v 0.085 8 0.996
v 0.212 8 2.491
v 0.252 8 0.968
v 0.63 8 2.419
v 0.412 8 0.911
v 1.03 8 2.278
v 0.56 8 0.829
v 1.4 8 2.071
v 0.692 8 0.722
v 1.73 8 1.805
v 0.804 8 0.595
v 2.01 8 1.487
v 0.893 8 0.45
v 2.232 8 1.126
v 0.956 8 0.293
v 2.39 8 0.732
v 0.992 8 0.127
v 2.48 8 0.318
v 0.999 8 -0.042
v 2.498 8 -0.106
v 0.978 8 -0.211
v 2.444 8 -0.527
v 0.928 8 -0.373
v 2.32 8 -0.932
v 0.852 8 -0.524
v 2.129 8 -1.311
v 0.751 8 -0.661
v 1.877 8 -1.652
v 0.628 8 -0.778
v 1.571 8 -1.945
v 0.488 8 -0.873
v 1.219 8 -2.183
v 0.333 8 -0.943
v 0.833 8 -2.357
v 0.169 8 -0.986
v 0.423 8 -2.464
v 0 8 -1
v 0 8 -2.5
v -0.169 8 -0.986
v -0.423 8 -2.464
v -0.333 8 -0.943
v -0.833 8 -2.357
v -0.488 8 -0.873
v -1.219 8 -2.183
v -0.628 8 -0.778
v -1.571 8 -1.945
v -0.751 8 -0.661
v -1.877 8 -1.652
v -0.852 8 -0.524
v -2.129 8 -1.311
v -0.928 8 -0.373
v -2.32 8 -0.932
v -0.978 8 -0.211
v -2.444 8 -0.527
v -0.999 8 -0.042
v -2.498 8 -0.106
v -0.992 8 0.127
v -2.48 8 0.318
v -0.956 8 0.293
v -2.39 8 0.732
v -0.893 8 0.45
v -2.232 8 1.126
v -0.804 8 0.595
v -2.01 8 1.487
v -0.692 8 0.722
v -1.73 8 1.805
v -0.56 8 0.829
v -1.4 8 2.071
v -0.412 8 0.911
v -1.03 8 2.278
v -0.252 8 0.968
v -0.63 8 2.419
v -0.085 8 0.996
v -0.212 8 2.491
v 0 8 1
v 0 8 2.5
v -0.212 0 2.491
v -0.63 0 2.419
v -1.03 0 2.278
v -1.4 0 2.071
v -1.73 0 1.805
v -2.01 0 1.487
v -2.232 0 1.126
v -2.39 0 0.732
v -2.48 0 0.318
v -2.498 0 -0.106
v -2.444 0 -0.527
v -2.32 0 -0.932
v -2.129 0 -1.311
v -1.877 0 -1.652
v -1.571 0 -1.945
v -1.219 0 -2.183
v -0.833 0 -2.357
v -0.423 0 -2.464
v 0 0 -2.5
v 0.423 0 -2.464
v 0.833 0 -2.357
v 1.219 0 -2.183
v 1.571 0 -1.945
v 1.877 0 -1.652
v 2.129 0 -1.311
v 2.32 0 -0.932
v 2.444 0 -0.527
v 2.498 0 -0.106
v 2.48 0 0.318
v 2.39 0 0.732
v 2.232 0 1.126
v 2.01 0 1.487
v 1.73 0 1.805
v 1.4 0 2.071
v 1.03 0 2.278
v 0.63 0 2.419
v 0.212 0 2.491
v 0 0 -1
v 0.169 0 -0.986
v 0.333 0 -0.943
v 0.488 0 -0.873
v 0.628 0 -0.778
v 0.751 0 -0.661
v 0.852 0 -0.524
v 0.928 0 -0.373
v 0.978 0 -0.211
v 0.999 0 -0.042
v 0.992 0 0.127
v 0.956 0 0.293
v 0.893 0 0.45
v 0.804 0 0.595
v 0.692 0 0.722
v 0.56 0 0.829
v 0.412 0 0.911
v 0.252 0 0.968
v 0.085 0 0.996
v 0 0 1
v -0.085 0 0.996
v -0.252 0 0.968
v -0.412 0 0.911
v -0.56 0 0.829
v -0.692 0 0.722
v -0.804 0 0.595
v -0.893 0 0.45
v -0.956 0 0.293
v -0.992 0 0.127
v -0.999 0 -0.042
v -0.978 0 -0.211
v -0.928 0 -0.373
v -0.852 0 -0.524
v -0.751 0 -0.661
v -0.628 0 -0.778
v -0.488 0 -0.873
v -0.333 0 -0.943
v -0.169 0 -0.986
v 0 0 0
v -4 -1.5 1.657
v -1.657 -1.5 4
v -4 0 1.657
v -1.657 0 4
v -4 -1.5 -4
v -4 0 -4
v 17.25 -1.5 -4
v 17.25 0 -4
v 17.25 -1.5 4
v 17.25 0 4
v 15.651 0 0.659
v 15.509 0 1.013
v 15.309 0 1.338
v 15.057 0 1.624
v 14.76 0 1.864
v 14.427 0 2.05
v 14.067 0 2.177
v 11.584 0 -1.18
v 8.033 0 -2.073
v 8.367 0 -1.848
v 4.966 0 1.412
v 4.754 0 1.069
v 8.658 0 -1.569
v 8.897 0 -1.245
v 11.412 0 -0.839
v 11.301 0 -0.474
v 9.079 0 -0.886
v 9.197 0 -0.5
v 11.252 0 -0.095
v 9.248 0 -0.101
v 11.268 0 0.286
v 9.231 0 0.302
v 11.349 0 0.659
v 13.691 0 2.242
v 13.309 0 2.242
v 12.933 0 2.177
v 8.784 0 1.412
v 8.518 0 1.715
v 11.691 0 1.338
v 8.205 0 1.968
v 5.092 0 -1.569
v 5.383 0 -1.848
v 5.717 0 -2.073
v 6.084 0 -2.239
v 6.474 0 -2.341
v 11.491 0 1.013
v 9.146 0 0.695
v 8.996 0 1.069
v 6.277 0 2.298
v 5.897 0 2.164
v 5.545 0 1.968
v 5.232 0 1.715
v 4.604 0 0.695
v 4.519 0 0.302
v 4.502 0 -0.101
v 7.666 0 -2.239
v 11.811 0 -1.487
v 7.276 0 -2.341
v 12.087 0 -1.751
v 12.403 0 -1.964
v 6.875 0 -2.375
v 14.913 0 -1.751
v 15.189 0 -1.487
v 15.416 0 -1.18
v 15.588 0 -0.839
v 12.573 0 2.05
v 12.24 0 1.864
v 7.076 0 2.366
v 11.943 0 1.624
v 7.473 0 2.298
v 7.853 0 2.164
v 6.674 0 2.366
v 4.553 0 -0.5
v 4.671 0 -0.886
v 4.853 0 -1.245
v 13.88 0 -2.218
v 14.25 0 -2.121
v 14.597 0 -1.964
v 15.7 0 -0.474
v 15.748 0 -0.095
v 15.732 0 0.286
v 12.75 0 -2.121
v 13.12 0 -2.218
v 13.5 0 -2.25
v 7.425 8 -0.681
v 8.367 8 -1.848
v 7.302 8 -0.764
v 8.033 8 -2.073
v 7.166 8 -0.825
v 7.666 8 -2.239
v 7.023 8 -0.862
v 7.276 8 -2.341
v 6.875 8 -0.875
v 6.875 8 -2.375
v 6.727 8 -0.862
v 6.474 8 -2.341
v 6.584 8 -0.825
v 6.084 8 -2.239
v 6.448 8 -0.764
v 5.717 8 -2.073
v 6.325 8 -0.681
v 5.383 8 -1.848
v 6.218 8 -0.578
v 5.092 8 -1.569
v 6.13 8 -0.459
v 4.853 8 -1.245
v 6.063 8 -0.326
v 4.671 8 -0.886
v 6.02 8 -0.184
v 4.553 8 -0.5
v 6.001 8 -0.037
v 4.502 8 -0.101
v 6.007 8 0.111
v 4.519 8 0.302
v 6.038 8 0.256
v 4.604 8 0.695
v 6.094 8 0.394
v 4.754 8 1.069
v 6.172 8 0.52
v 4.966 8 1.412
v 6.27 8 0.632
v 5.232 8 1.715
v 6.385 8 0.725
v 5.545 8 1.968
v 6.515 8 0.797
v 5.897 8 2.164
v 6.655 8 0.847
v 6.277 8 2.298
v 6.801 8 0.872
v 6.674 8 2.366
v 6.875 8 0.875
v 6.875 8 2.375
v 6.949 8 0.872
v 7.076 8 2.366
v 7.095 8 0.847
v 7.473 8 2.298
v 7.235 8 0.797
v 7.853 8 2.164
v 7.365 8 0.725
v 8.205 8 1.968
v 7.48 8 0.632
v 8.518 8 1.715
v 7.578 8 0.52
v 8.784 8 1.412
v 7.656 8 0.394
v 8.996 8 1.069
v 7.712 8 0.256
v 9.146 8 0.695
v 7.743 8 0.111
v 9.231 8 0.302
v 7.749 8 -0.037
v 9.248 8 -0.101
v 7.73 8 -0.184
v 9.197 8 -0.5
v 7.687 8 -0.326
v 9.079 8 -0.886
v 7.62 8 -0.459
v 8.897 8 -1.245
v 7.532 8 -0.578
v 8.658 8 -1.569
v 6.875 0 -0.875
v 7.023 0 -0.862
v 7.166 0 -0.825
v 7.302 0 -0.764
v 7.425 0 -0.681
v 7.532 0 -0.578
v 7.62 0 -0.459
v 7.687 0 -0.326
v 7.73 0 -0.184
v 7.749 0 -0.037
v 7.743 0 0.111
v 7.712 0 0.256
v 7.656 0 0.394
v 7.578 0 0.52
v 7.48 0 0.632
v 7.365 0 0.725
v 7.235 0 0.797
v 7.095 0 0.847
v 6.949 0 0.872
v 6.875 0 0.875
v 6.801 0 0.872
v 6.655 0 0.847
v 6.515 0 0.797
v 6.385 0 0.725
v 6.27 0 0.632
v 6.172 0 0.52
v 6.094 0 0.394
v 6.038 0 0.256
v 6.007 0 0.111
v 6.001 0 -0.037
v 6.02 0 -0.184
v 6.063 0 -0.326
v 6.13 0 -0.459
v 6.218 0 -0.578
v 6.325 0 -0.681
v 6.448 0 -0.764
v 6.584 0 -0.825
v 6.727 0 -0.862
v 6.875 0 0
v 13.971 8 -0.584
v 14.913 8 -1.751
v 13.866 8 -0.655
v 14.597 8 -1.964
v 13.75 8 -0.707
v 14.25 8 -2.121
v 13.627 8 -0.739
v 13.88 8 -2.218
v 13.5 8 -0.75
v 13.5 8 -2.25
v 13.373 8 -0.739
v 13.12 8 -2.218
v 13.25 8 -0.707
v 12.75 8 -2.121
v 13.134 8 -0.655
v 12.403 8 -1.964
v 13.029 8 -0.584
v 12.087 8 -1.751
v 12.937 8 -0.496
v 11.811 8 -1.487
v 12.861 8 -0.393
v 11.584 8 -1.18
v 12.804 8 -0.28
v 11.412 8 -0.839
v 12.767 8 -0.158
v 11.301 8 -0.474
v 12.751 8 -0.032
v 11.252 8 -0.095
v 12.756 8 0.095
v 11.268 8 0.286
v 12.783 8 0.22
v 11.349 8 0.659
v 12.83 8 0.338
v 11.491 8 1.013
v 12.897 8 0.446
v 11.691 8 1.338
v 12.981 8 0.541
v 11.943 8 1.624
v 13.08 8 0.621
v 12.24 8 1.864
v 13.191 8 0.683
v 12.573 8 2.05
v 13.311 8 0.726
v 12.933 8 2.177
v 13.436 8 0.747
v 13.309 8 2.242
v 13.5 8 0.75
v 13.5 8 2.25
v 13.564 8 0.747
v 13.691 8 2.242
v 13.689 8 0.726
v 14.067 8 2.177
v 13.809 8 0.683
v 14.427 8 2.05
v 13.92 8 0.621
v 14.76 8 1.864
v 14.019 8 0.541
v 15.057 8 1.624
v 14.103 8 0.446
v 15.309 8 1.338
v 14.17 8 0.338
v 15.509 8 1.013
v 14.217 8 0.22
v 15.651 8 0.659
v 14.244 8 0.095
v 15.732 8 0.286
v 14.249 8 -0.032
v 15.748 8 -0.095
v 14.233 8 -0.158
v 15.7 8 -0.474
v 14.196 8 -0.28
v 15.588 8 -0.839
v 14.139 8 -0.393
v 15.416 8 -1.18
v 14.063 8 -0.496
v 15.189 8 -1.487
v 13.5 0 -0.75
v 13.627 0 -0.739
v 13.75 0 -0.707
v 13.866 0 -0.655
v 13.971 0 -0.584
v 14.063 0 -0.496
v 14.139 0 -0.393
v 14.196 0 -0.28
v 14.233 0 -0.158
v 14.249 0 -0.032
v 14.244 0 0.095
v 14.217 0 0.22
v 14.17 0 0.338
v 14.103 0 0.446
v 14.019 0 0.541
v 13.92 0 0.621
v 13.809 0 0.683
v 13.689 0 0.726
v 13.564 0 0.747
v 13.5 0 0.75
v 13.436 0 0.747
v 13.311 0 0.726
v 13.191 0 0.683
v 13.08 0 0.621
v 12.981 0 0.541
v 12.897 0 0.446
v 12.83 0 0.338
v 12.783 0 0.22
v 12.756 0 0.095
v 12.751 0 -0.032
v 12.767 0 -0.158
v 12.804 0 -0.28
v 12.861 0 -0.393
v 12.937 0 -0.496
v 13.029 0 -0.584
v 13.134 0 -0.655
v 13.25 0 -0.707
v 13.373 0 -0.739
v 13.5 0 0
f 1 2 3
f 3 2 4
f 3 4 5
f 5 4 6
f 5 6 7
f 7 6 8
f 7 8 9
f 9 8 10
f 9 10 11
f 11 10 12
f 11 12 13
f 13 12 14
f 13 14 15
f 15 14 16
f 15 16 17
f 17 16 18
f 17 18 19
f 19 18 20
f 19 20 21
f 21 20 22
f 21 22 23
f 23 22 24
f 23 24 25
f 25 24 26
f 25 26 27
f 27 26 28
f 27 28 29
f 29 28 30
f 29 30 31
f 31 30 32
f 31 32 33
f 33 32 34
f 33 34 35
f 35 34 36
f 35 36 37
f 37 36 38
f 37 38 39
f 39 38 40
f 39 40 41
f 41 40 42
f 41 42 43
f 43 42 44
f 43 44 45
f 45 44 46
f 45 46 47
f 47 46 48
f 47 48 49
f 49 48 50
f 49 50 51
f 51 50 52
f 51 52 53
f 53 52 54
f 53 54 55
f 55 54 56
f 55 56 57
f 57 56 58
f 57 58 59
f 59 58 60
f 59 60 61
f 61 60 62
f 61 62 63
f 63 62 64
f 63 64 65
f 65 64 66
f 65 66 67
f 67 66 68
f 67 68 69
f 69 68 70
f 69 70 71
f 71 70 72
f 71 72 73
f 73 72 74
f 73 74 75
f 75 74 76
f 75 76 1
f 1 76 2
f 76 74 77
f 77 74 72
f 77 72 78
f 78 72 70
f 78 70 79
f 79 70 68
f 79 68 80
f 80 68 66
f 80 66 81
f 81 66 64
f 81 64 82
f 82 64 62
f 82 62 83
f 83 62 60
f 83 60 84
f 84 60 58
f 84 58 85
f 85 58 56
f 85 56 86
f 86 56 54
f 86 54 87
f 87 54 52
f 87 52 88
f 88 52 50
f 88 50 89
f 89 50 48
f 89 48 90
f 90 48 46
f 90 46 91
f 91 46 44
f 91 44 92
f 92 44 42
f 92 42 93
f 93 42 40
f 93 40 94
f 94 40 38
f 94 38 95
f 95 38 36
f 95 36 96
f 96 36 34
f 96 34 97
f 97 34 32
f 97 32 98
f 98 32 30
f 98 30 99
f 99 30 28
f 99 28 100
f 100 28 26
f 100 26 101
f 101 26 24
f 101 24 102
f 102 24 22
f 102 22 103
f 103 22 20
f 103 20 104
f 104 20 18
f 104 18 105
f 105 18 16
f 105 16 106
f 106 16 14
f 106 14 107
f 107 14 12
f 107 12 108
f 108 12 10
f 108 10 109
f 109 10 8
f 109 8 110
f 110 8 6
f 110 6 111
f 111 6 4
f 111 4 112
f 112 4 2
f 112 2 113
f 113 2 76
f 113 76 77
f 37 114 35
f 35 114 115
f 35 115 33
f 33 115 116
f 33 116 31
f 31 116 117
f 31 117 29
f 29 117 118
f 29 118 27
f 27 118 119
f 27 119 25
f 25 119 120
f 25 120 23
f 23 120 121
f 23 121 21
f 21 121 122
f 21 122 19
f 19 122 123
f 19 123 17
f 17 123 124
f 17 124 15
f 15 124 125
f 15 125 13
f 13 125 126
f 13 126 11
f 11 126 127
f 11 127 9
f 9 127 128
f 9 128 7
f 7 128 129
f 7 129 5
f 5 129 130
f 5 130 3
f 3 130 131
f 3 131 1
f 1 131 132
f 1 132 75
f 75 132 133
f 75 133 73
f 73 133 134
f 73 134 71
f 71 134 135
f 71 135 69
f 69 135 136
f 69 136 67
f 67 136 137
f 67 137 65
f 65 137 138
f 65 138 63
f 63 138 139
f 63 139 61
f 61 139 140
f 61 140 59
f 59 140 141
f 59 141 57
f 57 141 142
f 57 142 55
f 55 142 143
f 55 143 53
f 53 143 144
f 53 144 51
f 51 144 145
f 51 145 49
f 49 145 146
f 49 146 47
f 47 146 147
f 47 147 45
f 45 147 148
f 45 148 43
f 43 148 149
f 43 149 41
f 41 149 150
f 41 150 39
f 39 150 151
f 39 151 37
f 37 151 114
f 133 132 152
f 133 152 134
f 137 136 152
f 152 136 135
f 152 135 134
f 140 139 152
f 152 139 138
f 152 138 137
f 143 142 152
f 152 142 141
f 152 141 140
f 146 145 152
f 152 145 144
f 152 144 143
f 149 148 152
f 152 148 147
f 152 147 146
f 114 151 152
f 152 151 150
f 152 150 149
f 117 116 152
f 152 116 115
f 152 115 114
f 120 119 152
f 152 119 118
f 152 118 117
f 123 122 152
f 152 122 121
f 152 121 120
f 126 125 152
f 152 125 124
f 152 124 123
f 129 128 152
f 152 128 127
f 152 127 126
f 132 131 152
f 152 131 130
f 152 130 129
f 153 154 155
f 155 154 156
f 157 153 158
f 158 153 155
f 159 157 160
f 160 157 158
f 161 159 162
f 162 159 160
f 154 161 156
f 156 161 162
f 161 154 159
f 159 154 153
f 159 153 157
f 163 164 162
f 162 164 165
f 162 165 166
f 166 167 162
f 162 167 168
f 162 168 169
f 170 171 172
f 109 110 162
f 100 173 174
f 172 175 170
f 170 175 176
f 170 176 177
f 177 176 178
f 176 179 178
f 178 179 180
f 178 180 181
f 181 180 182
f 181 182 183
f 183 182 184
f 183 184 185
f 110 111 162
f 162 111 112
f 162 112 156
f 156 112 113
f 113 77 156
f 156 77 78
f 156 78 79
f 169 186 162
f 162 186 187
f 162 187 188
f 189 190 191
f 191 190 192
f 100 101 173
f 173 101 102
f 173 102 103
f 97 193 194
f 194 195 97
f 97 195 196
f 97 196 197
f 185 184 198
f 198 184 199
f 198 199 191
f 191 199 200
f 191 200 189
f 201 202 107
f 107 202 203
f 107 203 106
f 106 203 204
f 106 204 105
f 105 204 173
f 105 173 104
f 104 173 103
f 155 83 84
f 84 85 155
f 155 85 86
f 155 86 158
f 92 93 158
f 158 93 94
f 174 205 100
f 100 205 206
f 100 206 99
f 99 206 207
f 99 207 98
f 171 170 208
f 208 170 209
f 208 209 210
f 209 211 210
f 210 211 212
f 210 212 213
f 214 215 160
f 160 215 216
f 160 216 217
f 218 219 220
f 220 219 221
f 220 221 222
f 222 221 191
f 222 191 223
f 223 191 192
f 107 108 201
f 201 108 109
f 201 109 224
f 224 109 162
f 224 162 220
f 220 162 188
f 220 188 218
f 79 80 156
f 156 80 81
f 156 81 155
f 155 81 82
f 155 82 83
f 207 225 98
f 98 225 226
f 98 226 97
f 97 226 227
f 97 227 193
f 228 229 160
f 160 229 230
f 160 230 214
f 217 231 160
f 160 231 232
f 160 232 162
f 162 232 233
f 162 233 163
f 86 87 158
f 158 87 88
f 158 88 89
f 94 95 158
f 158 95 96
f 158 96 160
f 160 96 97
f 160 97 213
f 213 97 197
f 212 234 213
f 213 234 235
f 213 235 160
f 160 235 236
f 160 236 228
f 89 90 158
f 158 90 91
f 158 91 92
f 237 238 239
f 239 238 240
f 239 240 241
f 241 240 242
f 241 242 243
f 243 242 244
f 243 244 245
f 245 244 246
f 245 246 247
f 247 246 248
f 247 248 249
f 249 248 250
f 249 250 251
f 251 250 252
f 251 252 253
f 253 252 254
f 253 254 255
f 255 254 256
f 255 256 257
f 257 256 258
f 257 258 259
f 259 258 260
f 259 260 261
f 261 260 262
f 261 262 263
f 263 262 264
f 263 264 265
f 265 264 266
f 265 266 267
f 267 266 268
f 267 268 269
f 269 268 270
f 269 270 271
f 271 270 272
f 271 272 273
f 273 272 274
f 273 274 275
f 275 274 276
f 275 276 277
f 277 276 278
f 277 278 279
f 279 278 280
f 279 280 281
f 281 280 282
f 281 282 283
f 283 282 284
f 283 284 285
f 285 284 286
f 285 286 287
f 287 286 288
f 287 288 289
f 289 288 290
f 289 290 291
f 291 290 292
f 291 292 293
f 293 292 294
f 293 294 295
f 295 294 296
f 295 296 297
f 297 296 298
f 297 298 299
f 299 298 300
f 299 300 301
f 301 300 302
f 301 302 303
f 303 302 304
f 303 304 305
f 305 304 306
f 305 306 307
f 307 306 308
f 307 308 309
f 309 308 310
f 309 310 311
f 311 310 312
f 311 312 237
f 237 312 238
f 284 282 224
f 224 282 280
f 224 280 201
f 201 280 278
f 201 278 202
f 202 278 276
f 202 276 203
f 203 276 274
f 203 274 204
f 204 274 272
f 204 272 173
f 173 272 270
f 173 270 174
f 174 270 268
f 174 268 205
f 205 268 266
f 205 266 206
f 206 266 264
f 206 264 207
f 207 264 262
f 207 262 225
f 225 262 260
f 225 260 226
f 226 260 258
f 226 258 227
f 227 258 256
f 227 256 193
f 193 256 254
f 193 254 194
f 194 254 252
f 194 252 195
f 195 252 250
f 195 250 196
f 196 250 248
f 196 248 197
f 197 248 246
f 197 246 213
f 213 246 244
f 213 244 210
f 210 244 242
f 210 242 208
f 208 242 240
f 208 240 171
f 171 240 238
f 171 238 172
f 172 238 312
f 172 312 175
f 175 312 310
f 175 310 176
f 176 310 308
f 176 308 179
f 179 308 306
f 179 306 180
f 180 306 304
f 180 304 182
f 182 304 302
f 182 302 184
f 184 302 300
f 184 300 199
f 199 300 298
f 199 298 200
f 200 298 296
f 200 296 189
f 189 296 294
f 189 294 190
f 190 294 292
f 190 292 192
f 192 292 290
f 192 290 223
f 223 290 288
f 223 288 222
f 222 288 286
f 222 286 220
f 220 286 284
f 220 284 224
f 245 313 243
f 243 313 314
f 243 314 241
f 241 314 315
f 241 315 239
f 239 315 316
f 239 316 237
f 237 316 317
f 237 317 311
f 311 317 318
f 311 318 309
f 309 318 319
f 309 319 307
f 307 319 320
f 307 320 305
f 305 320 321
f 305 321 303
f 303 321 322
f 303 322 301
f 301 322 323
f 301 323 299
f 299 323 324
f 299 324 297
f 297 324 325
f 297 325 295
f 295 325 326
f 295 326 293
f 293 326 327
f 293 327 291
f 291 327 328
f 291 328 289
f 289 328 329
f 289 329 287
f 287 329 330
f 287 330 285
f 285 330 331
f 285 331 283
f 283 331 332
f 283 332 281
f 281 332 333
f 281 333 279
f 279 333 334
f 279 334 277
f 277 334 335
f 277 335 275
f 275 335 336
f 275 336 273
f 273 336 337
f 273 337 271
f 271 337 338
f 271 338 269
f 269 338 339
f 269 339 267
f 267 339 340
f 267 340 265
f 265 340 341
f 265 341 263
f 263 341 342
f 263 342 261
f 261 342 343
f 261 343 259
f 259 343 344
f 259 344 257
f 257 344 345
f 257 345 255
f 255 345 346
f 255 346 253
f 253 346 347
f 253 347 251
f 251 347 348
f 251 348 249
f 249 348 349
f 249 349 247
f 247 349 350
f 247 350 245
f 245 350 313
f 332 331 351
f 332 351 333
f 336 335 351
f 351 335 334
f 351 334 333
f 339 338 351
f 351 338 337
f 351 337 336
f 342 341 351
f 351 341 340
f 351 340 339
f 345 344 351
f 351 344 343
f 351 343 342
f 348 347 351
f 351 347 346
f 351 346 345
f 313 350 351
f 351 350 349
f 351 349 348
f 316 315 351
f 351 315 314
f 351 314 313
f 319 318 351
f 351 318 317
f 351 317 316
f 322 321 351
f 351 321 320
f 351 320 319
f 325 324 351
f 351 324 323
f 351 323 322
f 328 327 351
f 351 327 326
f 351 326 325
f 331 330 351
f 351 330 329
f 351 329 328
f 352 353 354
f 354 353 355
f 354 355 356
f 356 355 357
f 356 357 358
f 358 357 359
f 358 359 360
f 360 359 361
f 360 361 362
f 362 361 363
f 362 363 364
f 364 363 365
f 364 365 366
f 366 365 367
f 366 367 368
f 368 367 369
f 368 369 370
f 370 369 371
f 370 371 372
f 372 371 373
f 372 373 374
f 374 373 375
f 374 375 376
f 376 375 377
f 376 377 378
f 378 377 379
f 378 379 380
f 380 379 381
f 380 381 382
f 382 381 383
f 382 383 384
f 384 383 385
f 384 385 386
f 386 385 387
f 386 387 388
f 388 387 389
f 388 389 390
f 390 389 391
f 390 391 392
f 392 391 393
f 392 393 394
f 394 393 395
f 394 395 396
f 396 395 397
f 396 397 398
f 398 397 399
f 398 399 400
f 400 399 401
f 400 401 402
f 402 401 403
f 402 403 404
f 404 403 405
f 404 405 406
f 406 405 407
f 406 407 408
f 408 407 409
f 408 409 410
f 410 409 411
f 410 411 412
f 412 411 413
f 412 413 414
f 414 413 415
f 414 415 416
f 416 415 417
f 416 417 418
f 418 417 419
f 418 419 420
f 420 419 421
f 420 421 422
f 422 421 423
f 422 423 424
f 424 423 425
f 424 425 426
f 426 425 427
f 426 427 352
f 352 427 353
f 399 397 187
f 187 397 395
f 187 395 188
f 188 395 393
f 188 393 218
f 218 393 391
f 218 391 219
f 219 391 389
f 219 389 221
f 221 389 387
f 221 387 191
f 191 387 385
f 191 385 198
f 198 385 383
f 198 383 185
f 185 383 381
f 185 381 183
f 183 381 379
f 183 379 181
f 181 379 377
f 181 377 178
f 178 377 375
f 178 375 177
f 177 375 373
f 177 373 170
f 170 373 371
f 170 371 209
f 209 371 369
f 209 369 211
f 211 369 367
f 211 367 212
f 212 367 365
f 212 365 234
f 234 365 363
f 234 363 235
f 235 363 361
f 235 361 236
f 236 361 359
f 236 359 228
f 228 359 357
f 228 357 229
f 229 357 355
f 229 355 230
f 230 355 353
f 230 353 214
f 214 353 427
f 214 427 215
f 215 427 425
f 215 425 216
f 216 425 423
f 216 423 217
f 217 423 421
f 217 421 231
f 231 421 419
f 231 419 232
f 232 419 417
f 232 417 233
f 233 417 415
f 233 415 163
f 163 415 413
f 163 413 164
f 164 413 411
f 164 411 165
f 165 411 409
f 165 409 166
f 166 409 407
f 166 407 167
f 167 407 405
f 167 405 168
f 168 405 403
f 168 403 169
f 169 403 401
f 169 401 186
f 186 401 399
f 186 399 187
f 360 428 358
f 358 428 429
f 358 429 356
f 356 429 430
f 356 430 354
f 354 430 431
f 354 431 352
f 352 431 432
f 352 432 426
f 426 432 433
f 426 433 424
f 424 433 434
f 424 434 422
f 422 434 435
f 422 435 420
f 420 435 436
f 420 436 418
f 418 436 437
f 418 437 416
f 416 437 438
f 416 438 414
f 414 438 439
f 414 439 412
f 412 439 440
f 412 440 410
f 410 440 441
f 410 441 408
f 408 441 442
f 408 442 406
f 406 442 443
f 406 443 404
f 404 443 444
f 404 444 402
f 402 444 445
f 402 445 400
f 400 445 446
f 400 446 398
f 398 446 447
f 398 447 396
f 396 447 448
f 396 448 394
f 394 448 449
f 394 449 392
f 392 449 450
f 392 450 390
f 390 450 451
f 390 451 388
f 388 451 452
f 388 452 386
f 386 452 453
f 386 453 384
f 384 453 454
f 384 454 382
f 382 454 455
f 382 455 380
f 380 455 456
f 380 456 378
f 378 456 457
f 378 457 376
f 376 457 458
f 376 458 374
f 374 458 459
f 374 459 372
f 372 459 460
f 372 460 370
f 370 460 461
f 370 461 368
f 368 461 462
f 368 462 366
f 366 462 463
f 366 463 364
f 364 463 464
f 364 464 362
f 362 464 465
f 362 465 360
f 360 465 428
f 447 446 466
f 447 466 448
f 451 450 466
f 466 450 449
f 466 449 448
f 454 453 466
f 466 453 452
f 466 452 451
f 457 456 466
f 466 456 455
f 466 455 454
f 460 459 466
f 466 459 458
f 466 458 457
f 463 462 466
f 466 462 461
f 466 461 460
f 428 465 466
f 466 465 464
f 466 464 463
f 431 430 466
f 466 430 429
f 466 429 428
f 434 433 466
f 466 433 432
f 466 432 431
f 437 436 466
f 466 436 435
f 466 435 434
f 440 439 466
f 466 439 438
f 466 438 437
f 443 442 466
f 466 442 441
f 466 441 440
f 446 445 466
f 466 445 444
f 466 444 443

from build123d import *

# Parameters (mm, degrees)
SKETCH1_R             = 2.5
SKETCH1_R_2           = 1
BOSS_EXTRUDE1_DEPTH   = 8
SKETCH1_R_3           = 2.375
SKETCH1_R_4           = 0.875
BOSS_EXTRUDE1_2_DEPTH = 8
SKETCH1_R_5           = 2.25
SKETCH1_R_6           = 0.75
BOSS_EXTRUDE1_3_DEPTH = 8
BOSS_EXTRUDE2_START   = 1.5
SKETCH2_R             = 2.5
SKETCH2_R_2           = 1
BOSS_EXTRUDE2_DEPTH   = 1.5


with BuildPart() as part:
    # Sketch1 → Boss-Extrude1 (new body)
    with BuildSketch(Plane(origin=(0, 0, 0), x_dir=(1, 0, 0), z_dir=(0, 1, 0))):
        with Locations(Location((0, 0, 0), (0, 0, 270))):
            Circle(SKETCH1_R)
        with Locations(Location((0, 0, 0), (0, 0, 270))):
            Circle(SKETCH1_R_2, mode=Mode.SUBTRACT)
    extrude(amount=BOSS_EXTRUDE1_DEPTH)



with BuildPart() as body_2:
    # Sketch1 → Boss-Extrude1 2 (new body)
    with BuildSketch(Plane(origin=(0, 0, 0), x_dir=(1, 0, 0), z_dir=(0, 1, 0))):
        with Locations(Location((6.875, 0, 0), (0, 0, 270))):
            Circle(SKETCH1_R_3)
        with Locations(Location((6.875, 0, 0), (0, 0, 270))):
            Circle(SKETCH1_R_4, mode=Mode.SUBTRACT)
    extrude(amount=BOSS_EXTRUDE1_2_DEPTH)


with BuildPart() as body_3:
    # Sketch1 → Boss-Extrude1 3 (new body)
    with BuildSketch(Plane(origin=(0, 0, 0), x_dir=(1, 0, 0), z_dir=(0, 1, 0))):
        with Locations(Location((13.5, 0, 0), (0, 0, 270))):
            Circle(SKETCH1_R_5)
        with Locations(Location((13.5, 0, 0), (0, 0, 270))):
            Circle(SKETCH1_R_6, mode=Mode.SUBTRACT)
    extrude(amount=BOSS_EXTRUDE1_3_DEPTH)


with BuildPart() as part_1:
    add(part.part)

    add(body_2.part)  # Boss-Extrude2 merges body 2

    add(body_3.part)  # Boss-Extrude2 merges body 3
    # Sketch2 → Boss-Extrude2 (add)
    # profile 1 of 3: a face of its own
    with BuildSketch(Plane.XZ.offset(BOSS_EXTRUDE2_START)):
        Polygon((17.25, 4), (-1.656854249, 4), (-4, 1.656854249), (-4, -4), (17.25, -4), align=None)
        with Locations(Location((0, 0, 0), (0, 0, 270))):
            Circle(SKETCH2_R, mode=Mode.SUBTRACT)
    # profile 2 of 3: a face of its own
    with BuildSketch(Plane.XZ.offset(BOSS_EXTRUDE2_START)):
        with Locations(Location((0, 0, 0), (0, 0, 270))):
            Circle(SKETCH2_R)
        with Locations(Location((0, 0, 0), (0, 0, 90))):
            Circle(SKETCH2_R_2, mode=Mode.SUBTRACT)
    # profile 3 of 3: a face of its own
    with BuildSketch(Plane.XZ.offset(BOSS_EXTRUDE2_START)):
        with Locations(Location((0, 0, 0), (0, 0, 90))):
            Circle(SKETCH2_R_2)
    extrude(amount=-BOSS_EXTRUDE2_DEPTH)


solid = part_1.part
